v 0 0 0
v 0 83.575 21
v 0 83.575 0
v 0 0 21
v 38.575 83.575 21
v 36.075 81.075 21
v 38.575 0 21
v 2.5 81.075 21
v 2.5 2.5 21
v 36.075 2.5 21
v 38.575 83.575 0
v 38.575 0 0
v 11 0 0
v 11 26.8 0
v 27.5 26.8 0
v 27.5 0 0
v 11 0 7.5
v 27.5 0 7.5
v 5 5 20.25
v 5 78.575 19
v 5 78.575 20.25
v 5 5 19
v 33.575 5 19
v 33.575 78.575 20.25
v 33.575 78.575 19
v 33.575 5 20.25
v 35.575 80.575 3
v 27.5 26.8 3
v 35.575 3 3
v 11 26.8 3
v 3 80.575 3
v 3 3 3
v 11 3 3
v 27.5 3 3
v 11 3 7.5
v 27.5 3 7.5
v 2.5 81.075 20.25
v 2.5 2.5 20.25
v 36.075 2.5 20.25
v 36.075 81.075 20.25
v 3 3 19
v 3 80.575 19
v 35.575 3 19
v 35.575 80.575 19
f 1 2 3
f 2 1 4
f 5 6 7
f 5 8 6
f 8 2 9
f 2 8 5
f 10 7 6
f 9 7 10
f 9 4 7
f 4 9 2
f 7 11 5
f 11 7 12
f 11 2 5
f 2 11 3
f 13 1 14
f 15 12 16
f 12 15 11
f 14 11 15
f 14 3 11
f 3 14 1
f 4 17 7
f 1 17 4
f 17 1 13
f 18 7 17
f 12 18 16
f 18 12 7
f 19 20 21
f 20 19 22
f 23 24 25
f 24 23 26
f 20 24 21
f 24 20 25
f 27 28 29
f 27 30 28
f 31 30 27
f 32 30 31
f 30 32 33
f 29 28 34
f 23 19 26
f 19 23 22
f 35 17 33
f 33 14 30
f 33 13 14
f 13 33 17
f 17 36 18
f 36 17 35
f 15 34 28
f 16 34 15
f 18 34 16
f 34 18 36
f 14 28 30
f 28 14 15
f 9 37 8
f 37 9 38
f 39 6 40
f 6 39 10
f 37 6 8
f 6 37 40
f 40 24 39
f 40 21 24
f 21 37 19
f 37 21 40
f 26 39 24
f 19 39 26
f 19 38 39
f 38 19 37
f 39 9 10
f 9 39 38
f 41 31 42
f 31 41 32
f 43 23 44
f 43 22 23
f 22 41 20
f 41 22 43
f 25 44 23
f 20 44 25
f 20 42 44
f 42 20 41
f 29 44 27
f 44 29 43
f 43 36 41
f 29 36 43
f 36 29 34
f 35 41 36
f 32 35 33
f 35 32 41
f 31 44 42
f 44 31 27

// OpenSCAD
difference() {
    cube([38.575, 83.575, 21]); // main box
    translate([5,5,3]) cube([28.575,73.575,19]); // inside of box
    translate([11, 0,0]) cube([16.5,26.8,7.5]); // space for ethernet connector
    translate([2.5,2.5,21-0.75]) cube([33.575,78.575,0.75]); // top of ledge
    translate([3,3,3]) cube ([32.575,77.575,16]); // bottom of ledge
}
